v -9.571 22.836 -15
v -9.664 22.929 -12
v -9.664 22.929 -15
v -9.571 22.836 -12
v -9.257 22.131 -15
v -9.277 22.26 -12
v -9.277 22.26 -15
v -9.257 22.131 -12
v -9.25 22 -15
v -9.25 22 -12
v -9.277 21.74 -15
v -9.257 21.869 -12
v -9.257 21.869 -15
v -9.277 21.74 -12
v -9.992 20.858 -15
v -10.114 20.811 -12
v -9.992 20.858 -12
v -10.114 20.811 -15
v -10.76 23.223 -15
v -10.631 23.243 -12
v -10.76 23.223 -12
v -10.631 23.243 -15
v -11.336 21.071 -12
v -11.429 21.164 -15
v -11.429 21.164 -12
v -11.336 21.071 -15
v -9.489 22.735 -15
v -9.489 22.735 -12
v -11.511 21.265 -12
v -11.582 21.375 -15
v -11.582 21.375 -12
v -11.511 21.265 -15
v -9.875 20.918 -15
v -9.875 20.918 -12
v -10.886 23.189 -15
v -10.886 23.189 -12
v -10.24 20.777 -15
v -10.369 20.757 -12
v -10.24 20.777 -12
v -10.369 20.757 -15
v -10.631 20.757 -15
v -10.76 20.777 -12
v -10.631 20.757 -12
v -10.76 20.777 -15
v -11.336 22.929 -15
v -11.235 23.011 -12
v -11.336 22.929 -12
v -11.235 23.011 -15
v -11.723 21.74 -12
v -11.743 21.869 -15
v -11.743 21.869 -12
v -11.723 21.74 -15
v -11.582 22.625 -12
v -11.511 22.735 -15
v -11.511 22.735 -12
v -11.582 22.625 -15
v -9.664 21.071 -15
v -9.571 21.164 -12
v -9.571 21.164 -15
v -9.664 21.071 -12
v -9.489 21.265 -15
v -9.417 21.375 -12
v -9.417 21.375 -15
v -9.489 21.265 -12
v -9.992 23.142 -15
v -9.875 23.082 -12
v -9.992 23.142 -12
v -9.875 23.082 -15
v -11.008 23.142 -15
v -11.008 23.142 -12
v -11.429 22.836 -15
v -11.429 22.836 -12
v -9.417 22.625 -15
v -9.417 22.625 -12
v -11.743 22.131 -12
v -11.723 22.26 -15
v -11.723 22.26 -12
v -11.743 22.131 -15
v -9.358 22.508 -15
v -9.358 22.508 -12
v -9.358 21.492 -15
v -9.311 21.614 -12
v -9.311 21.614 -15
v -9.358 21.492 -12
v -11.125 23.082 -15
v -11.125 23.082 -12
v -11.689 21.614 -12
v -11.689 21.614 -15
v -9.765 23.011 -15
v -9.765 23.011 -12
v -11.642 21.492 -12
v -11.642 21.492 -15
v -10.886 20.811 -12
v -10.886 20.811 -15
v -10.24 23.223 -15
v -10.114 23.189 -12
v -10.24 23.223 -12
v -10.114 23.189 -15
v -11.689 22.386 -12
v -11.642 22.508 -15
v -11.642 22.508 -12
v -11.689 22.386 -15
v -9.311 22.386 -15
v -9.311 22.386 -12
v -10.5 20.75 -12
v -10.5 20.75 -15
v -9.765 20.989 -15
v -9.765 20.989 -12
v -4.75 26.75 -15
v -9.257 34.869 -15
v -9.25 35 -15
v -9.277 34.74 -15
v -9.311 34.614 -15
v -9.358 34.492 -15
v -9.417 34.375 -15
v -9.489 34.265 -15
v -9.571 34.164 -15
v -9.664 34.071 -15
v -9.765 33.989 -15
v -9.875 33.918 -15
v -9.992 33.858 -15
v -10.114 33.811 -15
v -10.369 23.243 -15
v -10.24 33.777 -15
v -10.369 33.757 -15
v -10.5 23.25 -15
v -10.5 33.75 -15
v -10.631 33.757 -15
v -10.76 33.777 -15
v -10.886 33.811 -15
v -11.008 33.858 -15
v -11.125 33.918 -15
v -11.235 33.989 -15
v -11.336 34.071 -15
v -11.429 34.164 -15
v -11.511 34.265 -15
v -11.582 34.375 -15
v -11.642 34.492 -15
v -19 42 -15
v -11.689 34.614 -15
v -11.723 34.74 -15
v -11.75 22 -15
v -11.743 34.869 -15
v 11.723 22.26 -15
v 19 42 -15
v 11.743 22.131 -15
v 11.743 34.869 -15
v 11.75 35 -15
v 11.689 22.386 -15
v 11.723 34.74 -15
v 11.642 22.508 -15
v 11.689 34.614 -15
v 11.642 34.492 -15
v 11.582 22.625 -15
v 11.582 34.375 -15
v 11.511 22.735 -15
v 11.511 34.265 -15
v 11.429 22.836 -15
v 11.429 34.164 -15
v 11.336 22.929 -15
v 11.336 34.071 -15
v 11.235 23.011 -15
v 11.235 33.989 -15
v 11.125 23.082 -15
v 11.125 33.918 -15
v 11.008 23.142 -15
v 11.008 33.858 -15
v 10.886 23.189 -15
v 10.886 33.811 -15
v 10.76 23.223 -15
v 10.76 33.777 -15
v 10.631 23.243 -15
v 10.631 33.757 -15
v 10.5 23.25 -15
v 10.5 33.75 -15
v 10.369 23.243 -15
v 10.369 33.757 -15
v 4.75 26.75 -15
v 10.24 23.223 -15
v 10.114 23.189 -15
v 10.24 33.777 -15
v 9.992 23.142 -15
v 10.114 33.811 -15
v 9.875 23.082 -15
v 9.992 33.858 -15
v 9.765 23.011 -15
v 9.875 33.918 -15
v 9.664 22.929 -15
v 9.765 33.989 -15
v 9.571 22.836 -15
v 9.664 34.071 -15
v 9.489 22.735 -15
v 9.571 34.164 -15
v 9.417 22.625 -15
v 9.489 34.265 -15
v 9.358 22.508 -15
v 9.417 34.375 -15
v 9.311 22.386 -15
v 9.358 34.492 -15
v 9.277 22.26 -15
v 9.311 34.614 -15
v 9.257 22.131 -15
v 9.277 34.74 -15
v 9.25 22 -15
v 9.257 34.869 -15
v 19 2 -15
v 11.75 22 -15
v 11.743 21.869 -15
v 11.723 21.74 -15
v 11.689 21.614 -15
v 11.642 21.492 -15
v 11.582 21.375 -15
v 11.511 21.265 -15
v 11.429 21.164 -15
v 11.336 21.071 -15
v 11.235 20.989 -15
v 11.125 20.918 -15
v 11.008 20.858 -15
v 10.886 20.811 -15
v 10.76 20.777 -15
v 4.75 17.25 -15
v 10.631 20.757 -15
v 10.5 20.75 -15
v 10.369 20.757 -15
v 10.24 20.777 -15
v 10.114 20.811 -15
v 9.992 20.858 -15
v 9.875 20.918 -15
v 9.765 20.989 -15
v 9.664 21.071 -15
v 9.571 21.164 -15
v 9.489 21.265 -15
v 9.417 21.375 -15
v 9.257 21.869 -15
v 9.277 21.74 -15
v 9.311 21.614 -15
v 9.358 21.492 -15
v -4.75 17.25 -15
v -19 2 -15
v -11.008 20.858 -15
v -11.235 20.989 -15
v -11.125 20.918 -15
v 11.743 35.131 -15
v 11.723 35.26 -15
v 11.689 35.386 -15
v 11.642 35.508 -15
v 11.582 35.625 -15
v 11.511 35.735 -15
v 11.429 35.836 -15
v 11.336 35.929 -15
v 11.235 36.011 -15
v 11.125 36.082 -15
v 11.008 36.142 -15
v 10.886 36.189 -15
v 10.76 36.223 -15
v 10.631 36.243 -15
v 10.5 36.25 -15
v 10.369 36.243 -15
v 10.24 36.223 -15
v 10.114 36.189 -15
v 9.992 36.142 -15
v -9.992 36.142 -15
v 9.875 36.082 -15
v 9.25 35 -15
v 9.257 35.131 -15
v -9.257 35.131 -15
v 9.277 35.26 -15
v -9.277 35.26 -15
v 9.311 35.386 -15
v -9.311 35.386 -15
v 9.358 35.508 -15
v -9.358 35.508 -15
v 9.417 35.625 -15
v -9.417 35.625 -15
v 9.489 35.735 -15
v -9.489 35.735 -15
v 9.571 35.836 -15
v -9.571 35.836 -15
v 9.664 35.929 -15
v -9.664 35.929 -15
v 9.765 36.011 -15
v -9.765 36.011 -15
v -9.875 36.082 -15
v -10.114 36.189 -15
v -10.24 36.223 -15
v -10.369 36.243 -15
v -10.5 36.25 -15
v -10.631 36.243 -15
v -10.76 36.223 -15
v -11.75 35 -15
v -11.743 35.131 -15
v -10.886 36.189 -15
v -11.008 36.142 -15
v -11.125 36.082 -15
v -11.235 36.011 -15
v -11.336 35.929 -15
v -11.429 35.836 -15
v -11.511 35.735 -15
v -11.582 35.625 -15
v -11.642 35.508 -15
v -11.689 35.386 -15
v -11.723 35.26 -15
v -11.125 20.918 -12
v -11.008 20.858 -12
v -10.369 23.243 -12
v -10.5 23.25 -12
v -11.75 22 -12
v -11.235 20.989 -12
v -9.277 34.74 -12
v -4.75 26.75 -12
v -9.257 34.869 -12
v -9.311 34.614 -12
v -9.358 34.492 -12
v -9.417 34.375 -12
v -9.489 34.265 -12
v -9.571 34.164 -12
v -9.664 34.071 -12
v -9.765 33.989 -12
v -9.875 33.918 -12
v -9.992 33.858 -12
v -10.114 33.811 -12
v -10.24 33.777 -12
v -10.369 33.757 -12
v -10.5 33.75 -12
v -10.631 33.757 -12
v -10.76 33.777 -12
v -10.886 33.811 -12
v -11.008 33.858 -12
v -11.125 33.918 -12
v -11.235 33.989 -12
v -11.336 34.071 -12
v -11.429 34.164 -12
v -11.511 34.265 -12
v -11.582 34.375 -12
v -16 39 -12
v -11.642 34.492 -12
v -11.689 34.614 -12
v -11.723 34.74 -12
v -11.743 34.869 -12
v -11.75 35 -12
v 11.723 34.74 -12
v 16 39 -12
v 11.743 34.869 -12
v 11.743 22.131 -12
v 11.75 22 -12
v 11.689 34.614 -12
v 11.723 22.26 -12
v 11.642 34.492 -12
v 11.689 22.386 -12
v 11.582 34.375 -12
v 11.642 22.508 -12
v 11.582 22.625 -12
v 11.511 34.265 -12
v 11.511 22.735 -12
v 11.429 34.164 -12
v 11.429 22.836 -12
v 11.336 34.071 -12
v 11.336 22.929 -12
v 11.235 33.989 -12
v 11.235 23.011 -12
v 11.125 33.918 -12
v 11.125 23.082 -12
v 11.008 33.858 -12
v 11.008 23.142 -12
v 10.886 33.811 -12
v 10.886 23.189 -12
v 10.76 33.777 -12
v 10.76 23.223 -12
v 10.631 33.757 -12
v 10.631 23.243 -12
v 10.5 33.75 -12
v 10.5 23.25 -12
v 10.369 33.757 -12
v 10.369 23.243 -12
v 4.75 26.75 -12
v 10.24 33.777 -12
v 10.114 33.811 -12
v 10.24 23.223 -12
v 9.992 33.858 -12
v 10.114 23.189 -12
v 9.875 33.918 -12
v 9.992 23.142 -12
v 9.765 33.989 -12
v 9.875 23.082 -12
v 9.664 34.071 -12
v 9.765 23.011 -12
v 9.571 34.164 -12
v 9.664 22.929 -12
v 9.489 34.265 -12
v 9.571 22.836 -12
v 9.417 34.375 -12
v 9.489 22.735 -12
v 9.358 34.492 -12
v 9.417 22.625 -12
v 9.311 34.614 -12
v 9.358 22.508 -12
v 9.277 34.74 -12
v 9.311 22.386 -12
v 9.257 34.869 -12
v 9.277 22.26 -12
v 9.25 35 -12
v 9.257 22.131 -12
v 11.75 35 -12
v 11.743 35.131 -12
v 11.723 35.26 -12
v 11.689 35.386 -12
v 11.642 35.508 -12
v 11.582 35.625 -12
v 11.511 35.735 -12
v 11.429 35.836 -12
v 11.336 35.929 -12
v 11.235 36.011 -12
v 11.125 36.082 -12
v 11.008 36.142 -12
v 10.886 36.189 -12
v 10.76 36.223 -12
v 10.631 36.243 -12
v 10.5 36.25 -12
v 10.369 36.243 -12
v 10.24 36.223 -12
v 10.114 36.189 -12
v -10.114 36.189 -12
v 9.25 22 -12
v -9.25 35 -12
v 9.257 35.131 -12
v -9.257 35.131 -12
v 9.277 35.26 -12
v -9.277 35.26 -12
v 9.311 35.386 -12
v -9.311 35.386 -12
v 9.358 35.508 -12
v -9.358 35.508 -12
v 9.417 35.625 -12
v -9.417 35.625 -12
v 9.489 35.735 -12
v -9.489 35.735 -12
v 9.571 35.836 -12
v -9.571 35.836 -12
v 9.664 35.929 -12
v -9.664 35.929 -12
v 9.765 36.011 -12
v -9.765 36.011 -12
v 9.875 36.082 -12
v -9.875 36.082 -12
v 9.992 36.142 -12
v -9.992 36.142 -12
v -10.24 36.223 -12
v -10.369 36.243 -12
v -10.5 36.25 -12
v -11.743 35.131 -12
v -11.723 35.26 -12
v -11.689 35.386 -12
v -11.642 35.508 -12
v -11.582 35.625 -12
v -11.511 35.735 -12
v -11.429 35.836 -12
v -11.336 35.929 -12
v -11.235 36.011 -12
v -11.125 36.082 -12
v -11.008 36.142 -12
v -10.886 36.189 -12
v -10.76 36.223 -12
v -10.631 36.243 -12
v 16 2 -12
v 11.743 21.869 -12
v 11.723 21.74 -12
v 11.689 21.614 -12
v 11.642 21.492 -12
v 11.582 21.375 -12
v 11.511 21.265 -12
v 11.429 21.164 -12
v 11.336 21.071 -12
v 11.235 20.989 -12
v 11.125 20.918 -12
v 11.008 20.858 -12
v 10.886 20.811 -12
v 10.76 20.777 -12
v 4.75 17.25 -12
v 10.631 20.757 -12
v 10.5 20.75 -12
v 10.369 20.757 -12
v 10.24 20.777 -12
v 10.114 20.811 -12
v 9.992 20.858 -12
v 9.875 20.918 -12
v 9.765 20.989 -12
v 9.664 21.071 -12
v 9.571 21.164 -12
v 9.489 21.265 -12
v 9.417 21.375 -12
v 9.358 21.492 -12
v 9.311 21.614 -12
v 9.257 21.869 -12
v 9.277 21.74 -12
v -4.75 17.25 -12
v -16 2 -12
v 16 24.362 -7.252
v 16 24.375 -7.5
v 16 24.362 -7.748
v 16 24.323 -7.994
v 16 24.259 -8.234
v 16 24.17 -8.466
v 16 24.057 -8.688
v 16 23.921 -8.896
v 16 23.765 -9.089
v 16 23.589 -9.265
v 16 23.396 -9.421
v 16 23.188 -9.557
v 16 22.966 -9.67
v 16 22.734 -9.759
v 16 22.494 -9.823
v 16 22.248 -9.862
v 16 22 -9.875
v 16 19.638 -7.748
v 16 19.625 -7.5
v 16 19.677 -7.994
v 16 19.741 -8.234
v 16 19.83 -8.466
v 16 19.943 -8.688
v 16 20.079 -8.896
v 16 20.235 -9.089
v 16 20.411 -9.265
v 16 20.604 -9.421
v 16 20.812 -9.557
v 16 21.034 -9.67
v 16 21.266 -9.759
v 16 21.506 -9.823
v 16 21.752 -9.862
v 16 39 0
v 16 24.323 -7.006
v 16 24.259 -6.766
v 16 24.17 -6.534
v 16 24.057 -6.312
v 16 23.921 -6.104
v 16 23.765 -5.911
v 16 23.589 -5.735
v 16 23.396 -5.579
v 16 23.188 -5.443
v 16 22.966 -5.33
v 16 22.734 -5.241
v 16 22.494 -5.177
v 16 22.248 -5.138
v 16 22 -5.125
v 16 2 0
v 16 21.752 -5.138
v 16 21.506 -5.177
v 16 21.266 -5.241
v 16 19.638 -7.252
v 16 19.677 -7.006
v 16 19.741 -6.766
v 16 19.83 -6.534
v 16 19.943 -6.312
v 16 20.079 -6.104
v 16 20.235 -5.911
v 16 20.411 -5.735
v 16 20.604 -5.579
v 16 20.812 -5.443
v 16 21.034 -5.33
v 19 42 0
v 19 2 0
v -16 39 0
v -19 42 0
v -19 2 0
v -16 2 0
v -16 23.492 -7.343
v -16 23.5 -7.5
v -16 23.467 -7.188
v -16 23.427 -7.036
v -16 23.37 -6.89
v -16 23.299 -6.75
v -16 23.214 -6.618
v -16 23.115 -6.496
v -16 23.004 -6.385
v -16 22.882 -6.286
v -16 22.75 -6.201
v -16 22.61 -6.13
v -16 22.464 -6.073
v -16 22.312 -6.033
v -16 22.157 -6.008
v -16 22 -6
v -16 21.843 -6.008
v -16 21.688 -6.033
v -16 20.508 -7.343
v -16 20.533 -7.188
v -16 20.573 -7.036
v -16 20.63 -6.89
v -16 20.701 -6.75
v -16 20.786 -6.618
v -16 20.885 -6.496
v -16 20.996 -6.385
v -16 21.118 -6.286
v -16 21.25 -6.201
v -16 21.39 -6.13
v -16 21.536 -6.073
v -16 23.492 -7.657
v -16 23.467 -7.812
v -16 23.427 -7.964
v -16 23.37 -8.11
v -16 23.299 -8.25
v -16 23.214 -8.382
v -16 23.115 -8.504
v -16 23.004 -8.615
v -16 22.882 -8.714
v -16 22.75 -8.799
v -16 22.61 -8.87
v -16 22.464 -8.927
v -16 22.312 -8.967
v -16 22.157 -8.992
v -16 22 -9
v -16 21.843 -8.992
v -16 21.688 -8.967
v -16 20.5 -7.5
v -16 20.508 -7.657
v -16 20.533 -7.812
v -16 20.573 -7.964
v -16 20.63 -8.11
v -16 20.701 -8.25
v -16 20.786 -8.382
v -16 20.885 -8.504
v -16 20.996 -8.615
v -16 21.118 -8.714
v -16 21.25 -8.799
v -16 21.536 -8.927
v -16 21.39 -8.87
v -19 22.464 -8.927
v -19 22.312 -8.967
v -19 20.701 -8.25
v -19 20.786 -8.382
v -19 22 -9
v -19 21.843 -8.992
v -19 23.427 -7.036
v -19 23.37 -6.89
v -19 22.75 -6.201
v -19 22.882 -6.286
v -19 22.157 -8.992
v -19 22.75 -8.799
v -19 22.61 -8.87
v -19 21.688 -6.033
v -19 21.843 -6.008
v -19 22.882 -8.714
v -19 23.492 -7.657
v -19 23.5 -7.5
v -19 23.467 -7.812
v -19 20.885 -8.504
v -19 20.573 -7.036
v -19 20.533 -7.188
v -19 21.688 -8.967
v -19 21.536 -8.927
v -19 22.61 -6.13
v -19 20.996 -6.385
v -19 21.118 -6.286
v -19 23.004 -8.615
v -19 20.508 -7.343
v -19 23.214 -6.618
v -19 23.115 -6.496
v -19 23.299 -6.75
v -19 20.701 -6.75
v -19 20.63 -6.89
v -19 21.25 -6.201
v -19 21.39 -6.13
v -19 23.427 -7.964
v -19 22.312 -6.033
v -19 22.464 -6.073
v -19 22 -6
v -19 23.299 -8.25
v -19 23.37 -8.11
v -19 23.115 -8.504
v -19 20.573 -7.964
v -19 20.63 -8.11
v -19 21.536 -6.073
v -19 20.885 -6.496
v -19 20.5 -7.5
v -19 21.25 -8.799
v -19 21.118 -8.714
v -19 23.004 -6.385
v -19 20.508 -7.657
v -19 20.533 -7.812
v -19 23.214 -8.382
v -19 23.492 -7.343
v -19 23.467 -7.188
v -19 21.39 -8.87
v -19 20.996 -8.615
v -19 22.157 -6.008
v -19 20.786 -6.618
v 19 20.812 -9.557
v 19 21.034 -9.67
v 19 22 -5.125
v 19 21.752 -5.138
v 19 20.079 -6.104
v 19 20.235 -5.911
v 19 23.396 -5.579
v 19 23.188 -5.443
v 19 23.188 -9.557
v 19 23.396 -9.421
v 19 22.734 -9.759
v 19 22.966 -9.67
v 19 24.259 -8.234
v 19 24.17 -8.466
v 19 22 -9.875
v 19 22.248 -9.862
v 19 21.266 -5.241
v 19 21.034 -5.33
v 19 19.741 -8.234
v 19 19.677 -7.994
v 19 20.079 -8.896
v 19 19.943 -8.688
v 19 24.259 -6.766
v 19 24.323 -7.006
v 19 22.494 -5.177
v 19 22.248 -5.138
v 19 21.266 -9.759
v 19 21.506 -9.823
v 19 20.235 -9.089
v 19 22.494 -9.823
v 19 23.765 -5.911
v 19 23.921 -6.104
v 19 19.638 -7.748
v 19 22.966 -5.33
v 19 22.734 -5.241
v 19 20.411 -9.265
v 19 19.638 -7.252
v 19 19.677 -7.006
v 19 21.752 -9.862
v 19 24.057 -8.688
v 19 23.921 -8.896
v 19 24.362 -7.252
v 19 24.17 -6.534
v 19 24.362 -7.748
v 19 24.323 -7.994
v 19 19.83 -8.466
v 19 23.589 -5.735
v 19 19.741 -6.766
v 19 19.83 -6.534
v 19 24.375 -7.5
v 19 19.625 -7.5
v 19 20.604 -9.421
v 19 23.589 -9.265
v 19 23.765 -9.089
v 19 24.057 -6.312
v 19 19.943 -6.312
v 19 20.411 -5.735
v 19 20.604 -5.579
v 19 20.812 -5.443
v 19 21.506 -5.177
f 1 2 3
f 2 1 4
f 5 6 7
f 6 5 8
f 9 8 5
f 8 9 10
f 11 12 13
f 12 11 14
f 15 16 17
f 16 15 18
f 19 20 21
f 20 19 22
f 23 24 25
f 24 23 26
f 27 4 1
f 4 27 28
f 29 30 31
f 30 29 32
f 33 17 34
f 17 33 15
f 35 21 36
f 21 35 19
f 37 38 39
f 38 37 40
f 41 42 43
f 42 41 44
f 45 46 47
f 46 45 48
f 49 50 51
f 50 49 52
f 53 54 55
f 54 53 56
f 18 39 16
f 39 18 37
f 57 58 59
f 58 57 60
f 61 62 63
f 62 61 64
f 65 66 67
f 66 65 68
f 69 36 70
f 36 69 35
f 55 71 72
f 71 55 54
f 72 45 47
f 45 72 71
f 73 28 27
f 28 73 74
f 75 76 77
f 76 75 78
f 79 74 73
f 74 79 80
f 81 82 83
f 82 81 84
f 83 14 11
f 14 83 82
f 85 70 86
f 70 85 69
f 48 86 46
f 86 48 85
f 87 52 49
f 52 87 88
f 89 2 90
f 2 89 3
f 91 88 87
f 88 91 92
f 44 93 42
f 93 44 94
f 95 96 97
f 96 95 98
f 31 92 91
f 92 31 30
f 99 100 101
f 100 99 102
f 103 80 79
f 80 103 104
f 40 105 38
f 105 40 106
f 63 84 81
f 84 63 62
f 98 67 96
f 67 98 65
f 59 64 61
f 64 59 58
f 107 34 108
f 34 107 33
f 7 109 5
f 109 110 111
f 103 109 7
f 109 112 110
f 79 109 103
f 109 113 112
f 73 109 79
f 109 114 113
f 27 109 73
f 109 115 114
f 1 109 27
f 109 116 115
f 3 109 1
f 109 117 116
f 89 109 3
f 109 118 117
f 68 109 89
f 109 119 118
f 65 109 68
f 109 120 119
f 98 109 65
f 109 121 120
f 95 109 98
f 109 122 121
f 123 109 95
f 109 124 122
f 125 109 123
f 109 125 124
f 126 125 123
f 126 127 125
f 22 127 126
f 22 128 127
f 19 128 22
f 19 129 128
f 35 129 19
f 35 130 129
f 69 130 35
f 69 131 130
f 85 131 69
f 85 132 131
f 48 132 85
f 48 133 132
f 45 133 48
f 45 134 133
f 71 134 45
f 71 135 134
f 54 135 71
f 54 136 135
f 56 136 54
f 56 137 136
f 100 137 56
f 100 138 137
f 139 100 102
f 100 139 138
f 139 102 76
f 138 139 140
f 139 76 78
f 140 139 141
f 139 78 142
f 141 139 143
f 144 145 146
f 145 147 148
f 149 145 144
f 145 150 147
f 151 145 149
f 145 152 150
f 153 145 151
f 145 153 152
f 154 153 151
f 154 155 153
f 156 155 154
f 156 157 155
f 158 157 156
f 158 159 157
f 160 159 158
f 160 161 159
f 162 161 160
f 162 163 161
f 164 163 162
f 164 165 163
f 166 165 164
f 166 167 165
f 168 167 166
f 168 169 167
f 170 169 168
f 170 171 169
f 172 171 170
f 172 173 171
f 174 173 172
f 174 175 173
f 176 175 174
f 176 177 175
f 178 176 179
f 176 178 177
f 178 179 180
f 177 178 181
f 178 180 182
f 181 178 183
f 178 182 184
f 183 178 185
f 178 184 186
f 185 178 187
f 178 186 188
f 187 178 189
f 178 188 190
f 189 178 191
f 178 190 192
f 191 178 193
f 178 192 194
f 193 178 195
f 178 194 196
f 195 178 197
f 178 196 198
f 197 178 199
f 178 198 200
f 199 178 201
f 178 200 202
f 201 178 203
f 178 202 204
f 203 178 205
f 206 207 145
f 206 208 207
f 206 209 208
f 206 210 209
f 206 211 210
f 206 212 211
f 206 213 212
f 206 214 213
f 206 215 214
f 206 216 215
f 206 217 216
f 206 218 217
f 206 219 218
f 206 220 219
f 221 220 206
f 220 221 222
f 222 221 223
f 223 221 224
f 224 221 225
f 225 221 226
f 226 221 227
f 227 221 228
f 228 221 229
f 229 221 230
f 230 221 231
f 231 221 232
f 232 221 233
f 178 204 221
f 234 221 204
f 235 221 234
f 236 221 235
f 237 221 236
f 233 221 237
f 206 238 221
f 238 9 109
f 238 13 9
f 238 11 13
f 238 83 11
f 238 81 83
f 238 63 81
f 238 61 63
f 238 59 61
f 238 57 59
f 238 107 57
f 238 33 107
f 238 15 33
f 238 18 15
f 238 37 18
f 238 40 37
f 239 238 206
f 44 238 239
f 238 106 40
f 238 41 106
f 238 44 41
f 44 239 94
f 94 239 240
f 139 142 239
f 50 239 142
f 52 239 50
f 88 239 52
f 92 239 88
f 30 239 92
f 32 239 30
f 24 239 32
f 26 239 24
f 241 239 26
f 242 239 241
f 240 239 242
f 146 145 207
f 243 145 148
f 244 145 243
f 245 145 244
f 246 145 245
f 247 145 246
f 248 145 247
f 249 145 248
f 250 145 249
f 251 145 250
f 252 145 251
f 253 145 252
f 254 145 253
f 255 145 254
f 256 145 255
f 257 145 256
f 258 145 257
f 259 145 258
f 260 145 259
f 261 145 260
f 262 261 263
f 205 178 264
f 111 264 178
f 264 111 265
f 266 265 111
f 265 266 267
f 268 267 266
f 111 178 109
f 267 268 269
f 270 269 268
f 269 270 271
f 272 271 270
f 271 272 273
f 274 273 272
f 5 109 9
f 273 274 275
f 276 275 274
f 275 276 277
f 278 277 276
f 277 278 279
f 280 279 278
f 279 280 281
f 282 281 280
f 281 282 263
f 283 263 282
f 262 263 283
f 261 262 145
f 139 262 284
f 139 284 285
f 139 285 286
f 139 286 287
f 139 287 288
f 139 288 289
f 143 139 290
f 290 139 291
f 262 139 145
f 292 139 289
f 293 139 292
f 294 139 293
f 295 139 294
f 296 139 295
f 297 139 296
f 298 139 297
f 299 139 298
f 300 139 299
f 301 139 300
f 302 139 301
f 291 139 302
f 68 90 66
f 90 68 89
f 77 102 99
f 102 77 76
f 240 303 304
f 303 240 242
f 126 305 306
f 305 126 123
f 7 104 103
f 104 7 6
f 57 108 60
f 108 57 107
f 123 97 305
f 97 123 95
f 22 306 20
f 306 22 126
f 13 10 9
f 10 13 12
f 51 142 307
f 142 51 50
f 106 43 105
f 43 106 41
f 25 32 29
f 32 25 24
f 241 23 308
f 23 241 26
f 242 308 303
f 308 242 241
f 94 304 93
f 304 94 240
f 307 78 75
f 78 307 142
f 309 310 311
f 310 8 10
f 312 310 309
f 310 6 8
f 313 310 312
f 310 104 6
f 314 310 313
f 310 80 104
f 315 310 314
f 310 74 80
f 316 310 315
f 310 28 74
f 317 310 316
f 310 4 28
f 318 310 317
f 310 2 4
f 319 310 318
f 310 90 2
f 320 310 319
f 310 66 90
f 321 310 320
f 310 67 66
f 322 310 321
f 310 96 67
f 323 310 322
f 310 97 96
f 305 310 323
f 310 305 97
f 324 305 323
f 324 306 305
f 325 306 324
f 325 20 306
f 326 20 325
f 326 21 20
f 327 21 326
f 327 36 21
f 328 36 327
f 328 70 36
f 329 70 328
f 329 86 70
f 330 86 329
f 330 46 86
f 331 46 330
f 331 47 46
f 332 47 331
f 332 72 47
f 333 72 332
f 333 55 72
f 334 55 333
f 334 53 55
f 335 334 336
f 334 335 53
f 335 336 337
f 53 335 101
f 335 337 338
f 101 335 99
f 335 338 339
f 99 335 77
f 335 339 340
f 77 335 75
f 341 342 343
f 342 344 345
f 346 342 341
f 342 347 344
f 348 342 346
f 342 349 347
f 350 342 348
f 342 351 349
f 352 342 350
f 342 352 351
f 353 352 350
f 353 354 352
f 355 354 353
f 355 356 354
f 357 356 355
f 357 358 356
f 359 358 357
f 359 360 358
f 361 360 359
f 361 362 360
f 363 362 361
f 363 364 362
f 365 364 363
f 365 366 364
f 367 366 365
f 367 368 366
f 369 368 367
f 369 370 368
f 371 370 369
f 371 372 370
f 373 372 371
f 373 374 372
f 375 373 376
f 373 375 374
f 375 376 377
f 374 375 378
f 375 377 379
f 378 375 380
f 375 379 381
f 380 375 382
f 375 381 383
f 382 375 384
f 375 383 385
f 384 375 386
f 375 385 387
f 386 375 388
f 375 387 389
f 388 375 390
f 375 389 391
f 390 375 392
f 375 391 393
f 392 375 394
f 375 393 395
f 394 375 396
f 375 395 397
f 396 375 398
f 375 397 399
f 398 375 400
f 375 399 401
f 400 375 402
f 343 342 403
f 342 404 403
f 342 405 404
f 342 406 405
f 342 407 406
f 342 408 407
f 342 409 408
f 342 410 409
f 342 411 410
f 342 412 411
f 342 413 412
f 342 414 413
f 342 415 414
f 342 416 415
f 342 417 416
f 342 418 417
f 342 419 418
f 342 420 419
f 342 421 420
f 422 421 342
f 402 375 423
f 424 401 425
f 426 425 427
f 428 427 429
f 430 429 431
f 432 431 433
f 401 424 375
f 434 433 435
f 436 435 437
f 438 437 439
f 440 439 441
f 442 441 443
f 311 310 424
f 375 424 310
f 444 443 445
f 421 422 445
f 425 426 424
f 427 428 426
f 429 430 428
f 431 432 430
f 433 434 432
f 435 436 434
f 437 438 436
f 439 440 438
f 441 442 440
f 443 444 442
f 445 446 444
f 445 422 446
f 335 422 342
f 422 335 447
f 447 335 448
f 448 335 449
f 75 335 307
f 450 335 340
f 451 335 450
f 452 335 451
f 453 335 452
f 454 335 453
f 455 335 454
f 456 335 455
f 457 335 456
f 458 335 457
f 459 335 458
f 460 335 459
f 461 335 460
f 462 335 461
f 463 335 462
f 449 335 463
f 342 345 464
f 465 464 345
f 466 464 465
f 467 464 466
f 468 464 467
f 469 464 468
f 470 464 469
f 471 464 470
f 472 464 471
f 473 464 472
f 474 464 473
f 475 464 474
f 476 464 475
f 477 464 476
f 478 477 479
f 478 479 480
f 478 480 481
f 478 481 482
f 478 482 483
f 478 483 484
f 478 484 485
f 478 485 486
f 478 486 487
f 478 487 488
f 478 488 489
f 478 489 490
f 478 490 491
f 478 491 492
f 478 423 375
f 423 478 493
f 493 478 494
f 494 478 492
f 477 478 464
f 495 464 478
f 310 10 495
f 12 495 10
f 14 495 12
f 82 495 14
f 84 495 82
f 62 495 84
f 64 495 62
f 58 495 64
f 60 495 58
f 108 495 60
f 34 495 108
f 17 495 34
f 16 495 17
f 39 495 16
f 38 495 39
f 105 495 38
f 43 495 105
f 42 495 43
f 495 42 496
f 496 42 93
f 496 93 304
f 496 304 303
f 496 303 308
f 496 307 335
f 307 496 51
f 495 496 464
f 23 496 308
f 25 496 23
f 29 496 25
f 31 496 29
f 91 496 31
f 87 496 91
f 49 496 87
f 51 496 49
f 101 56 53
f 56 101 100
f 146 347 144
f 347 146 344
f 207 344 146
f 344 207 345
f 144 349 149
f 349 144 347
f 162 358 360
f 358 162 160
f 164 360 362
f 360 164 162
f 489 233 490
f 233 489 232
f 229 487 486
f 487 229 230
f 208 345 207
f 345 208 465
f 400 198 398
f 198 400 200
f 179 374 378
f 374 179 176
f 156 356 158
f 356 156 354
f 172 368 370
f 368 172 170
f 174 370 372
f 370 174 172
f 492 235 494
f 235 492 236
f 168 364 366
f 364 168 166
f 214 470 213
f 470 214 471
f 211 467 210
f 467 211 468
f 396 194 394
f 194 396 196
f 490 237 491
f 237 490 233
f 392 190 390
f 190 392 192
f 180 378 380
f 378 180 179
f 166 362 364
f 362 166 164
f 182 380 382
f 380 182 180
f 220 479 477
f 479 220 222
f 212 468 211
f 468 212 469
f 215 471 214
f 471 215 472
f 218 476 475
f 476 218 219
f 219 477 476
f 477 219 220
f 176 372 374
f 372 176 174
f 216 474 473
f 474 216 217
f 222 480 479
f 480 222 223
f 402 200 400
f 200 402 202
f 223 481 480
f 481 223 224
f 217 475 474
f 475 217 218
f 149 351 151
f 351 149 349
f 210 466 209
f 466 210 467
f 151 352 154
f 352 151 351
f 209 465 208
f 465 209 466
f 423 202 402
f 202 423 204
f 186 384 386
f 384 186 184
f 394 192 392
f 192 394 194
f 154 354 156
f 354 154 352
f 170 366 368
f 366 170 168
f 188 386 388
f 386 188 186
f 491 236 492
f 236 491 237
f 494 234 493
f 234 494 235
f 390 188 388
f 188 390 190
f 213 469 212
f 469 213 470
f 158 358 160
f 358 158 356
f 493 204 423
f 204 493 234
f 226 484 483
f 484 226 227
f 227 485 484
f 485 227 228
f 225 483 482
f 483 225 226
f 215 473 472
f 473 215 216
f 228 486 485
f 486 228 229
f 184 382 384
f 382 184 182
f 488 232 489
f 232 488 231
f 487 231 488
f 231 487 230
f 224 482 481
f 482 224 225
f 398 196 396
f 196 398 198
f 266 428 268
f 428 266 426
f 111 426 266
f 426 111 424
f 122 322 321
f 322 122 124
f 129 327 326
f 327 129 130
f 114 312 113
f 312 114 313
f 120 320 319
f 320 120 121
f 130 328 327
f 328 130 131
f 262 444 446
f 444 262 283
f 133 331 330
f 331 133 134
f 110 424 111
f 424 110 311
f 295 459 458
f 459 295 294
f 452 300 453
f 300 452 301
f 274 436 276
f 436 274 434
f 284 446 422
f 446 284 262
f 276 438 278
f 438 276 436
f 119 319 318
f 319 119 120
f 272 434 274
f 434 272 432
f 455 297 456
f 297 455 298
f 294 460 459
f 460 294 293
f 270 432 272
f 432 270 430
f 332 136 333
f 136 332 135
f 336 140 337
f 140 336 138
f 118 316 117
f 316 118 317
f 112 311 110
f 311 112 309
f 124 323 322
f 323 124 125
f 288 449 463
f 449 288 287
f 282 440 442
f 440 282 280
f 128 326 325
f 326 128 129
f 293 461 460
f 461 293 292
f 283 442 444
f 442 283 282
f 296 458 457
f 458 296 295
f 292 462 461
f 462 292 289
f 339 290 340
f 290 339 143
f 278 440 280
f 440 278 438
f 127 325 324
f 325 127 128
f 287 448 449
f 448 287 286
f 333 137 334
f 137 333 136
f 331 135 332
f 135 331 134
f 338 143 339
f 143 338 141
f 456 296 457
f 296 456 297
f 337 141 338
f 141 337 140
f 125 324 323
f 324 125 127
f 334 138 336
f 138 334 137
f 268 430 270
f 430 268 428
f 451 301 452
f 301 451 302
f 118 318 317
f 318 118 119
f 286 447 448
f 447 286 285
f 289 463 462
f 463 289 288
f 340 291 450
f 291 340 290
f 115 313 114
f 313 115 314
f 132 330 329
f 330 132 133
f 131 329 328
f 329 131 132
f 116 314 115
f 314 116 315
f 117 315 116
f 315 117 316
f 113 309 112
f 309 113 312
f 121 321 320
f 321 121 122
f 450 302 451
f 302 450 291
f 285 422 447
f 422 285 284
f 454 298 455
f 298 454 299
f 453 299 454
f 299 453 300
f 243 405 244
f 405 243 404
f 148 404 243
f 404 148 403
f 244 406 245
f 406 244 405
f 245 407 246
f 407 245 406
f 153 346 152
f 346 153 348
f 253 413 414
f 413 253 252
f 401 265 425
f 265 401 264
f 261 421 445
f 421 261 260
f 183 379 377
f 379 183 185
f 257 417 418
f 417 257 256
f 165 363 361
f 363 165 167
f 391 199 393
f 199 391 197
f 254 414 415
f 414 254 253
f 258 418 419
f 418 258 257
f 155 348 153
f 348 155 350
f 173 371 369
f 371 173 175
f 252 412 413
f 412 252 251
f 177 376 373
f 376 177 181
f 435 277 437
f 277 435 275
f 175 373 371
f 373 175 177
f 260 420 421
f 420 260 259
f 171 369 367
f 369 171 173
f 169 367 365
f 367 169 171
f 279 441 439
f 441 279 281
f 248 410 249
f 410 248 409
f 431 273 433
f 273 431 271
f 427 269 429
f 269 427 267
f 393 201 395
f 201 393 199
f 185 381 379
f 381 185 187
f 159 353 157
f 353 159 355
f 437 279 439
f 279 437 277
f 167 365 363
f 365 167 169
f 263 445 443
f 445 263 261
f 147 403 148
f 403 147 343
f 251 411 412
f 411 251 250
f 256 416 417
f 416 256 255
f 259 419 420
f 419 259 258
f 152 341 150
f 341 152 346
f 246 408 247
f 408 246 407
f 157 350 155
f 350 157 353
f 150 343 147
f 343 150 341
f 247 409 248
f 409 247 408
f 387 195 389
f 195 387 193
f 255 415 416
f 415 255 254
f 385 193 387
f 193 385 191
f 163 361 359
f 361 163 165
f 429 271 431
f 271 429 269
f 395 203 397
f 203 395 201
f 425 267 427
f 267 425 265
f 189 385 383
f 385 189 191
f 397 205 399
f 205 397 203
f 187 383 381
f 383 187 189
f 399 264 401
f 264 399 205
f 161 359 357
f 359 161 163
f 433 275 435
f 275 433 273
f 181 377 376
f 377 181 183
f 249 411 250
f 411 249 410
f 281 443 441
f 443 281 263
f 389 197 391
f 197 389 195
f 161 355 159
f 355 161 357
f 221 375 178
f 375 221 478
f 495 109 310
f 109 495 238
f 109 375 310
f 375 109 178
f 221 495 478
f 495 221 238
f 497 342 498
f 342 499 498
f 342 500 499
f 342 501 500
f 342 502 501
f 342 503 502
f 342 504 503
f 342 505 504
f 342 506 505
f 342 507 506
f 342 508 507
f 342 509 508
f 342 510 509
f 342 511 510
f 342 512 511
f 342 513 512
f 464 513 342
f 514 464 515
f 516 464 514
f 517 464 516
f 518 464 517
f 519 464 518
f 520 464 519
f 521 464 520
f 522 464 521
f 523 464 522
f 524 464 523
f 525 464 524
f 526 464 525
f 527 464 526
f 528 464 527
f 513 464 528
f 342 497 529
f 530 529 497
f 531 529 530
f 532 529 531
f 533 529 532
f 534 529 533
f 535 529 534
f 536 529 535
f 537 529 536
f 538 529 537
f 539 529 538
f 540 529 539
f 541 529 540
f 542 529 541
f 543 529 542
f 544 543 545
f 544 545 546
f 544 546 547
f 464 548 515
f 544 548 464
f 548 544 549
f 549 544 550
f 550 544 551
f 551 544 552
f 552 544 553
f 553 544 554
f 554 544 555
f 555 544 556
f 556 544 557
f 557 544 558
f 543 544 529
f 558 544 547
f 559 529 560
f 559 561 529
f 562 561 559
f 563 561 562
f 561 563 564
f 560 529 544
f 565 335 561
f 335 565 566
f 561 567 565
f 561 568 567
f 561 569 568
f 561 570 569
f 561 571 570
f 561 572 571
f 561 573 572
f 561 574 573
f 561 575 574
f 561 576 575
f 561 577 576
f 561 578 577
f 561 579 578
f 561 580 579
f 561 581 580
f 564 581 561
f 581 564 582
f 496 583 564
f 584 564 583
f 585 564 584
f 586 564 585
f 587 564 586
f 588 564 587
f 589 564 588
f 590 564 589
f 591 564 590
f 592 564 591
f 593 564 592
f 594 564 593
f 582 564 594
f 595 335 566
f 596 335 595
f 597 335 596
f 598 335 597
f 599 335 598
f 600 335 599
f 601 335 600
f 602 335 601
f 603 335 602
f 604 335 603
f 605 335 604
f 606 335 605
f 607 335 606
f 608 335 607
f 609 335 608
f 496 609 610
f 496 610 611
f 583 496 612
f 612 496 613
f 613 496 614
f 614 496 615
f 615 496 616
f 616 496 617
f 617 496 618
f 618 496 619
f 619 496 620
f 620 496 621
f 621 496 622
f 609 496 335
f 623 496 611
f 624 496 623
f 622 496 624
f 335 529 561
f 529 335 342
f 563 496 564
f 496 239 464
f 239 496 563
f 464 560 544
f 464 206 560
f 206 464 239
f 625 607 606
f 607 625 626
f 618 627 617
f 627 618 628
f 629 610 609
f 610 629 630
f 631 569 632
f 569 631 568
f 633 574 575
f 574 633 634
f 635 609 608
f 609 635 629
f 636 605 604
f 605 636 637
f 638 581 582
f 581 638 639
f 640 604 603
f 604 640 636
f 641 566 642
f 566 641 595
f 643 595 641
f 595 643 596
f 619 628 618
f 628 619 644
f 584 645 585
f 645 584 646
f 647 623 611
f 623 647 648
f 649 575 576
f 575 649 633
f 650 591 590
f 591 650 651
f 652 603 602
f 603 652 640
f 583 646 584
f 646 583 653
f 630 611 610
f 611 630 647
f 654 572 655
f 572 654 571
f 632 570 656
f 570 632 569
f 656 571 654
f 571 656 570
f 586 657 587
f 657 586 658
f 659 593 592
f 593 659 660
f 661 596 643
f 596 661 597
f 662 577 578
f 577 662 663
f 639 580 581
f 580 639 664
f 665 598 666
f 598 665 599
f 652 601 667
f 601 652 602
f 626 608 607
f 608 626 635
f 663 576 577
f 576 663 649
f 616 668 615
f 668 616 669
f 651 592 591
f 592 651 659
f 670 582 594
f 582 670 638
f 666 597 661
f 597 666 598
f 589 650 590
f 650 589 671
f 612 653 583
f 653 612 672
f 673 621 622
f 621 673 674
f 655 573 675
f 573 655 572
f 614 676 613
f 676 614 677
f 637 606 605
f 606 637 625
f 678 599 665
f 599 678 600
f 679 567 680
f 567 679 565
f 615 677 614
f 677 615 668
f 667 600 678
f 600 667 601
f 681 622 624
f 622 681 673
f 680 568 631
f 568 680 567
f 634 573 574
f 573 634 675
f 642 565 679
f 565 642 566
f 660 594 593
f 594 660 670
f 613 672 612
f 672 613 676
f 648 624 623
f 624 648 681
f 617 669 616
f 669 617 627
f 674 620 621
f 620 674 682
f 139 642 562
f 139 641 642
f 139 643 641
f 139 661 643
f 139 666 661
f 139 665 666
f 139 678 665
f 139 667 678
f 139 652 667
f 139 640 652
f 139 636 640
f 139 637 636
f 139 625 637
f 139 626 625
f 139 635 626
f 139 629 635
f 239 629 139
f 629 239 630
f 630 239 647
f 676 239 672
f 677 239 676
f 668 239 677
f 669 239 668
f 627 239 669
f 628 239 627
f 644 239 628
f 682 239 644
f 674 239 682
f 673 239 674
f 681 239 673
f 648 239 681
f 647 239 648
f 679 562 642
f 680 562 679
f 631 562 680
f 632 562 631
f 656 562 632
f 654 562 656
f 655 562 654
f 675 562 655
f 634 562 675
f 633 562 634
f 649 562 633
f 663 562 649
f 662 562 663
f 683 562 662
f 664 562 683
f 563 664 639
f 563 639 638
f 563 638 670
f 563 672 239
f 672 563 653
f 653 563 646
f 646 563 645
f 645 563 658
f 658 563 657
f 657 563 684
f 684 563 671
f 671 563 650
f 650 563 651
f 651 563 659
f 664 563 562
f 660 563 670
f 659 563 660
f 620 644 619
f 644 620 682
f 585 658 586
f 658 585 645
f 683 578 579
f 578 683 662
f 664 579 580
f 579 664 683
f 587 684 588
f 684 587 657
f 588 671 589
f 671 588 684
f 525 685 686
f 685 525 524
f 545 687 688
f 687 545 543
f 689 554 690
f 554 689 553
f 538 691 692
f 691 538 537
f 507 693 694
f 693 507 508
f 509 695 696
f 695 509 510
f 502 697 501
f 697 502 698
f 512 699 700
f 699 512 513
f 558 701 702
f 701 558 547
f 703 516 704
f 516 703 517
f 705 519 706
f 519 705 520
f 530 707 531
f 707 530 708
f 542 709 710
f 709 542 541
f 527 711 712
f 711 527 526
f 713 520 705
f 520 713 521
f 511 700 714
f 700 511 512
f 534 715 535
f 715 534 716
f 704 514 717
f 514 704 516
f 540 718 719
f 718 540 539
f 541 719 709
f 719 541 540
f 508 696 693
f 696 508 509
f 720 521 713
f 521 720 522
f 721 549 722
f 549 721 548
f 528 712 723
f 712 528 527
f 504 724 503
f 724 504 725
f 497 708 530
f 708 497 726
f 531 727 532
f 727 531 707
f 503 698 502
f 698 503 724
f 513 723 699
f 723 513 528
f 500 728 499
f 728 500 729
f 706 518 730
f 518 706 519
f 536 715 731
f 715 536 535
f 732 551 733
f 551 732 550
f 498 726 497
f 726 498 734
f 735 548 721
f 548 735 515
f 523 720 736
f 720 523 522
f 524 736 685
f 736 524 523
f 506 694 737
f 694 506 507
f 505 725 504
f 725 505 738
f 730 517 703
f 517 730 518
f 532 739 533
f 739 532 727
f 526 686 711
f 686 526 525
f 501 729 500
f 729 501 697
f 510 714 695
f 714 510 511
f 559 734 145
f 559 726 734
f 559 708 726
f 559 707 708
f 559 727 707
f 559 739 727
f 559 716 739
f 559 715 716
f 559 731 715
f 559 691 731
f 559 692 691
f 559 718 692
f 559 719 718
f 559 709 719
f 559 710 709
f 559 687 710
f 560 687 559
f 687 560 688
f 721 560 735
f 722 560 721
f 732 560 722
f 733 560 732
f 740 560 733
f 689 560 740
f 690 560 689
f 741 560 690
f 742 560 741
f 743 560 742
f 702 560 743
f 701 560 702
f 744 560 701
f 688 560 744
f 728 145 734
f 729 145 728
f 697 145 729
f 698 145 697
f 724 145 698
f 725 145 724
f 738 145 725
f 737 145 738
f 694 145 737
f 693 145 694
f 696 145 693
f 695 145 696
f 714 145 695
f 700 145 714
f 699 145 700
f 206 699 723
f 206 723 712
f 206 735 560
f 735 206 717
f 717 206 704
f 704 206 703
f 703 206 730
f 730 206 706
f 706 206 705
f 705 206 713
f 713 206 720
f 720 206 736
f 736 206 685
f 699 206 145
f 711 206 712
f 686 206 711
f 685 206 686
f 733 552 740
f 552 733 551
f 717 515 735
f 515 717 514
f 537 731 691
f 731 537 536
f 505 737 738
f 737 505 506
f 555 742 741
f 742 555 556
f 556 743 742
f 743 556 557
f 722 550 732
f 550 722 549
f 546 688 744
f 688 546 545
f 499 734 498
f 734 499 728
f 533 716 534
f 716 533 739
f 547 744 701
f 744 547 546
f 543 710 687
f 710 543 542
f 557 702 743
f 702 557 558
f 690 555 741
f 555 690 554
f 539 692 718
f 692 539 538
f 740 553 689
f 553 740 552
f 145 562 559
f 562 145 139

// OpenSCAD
// file: ../lib/micro_servo.scad
$fn = 60;



module micro_servo()
{
    servo_mount_width = 8.5;
    servo_body_length = 22.5;
    servo_body_width = 12; // square body
    servo_body_height = 22.5;
    servo_axis_length = 15.5;

    mounting_arm_thickness = 2.5;
    mounting_arm_length = 5;
    mounting_arm_height = 15;

    gearbox_cylinder_height = 4;
    major_gearbox_offset = 0.5; // distance from edge
    major_gearbox_cylinder_diameter = 11.5;
    minor_gearbox_offset = 5.5; // distance from major gearbox center
    //minor_gearbox_cylinder_diameter = 5.5;
    minor_gearbox_cylinder_diameter = 6.5; // for simplicity

    control_head_diameter = 5;
    control_head_height = 3;
    
    translate([-servo_body_width / 2, 0, 0])
    translate([0, -servo_body_length + major_gearbox_offset + (major_gearbox_cylinder_diameter / 2), 0])
    translate([0, 0, -(servo_body_height + gearbox_cylinder_height)])
    union()
    {
        cube([servo_body_width, servo_body_length, servo_body_height]);
        
        // forward mounting arm
        translate([0, servo_body_length, mounting_arm_height])
        cube([servo_body_width, mounting_arm_length, mounting_arm_thickness]);
        
        // rear mounting arm
        translate([0, -mounting_arm_length, mounting_arm_height])
        cube([servo_body_width, mounting_arm_length, mounting_arm_thickness]);
        
        // major gearbox cylinder
        translate([major_gearbox_offset/2, servo_body_length - major_gearbox_offset, servo_body_height])
        translate([major_gearbox_cylinder_diameter / 2, -major_gearbox_cylinder_diameter / 2, 0])
        cylinder(d=major_gearbox_cylinder_diameter, h=gearbox_cylinder_height);
        
        // minor gearbox cylinder
        translate([major_gearbox_offset/2, servo_body_length - major_gearbox_offset, servo_body_height])
        translate([major_gearbox_cylinder_diameter / 2, -major_gearbox_cylinder_diameter / 2, 0])
        translate([0, -minor_gearbox_offset, 0])
        cylinder(d=minor_gearbox_cylinder_diameter, h=gearbox_cylinder_height);
        
        // control head
        translate([0, servo_body_length - major_gearbox_offset, servo_body_height])
        translate([major_gearbox_cylinder_diameter / 2, -major_gearbox_cylinder_diameter / 2, gearbox_cylinder_height])
        cylinder(d=control_head_diameter, h=control_head_height);
    }
}

module micro_servo_void()
{
    servo_mount_width = 9.5;
    servo_body_length = 23.5;
    servo_body_width = 13; // square body
    servo_body_height = 23.5;
    servo_axis_length = 15.5;

    mounting_arm_thickness = 3.5;
    mounting_arm_length = 6;
    mounting_arm_height = 15;

    gearbox_cylinder_height = 4.5;
    major_gearbox_offset = 0.5; // distance from edge
    major_gearbox_cylinder_diameter = 12.5;
    minor_gearbox_offset = 5.5; // distance from major gearbox center
    //minor_gearbox_cylinder_diameter = 5.5;
    minor_gearbox_cylinder_diameter = 6.5; // for simplicity

    control_head_diameter = 5;
    control_head_height = 3;
    
    translate([-servo_body_width / 2, 0, 0])
    translate([0, -servo_body_length + major_gearbox_offset + (major_gearbox_cylinder_diameter / 2), 0])
    translate([0, 0, -(servo_body_height + gearbox_cylinder_height)])
    union()
    {
        cube([servo_body_width, servo_body_length, servo_body_height]);
        
        // forward mounting arm
        translate([0, servo_body_length, 0])
        cube([servo_body_width, mounting_arm_length, mounting_arm_thickness + mounting_arm_height]);
        
        // rear mounting arm
        translate([0, -mounting_arm_length, 0])
        cube([servo_body_width, mounting_arm_length, mounting_arm_thickness + mounting_arm_height]);
        
        // major gearbox cylinder
        translate([major_gearbox_offset/2, servo_body_length - major_gearbox_offset, servo_body_height])
        translate([major_gearbox_cylinder_diameter / 2, -major_gearbox_cylinder_diameter / 2, 0])
        cylinder(d=major_gearbox_cylinder_diameter, h=gearbox_cylinder_height);
        
        // minor gearbox cylinder
        translate([major_gearbox_offset/2, servo_body_length - major_gearbox_offset, servo_body_height])
        translate([major_gearbox_cylinder_diameter / 2, -major_gearbox_cylinder_diameter / 2, 0])
        translate([0, -minor_gearbox_offset, 0])
        cylinder(d=minor_gearbox_cylinder_diameter, h=gearbox_cylinder_height);
        
        // control head
        translate([0, servo_body_length - major_gearbox_offset, servo_body_height])
        translate([major_gearbox_cylinder_diameter / 2, -major_gearbox_cylinder_diameter / 2, gearbox_cylinder_height])
        cylinder(d=control_head_diameter, h=control_head_height);
    }
}

//micro_servo_void();
// file: ../lib/rpi.scad
module base_plate_screw_head_cone(screw_head_radius = 6, screw_head_depth = 2)
{

    rotate_extrude()
    {
        translate([0, 0, 0]) polygon(points=[[0,0],[screw_head_radius, 0],[0,screw_head_depth]], paths=[[0,1,2]]);
    }
}


module raspberry_pi_holes(thickness = 3, screw_hole_diameter = 3)
{
//    z_offset = -thickness / 2.0;
    z_offset = -thickness;
    for ( x_offset = [3.5, 61.5] )
    {
        for ( y_offset = [3.5, 52.5] )
        {
            union()
            {
                translate([x_offset, y_offset, z_offset]) cylinder(d=screw_hole_diameter, h=thickness);
                translate([x_offset, y_offset, z_offset]) base_plate_screw_head_cone();
            }
        }
    }
}


// camera hole is centered at (0, 0, 0)
//camera_hole_center_x = 0;
//camera_hole_center_y = 6.7;
//module rpi_camera_holes(thickness = 2)
//{
//    wall_thickness = thickness;
//    
//    screw_head_depth = 2;
//    screw_head_radius = 4;
//    
//    translate([0, 0, -wall_thickness + 1])
//    union()
//    {
//        for ( y_offset = [-6.75, 6.25] )
//        {
//            for ( x_offset = [-10.5, 10.5] )
//            {
//                // screw hole
//                translate([camera_hole_center_x + x_offset, camera_hole_center_y+ y_offset, -10])
//                cylinder(h=20, r=1.25);
//                
//                // screw head cone
//                translate([camera_hole_center_x + x_offset, camera_hole_center_y+ y_offset, 0])
//                rotate([0, 0, 0])
//                rotate_extrude()
//                {
//                    translate([0, 0, 0]) polygon(points=[[0,0],[screw_head_radius, 0],[0,screw_head_depth]], paths=[[0,1,2]]);
//                }
//            }
//        }
//    }
//    
//    translate([camera_hole_center_x, camera_hole_center_y - 6.75, -wall_thickness])cube(size = [9.5, 9.5, 9.5], center = true);
//}

// lens center is at (0, 0, 0)
module rpi_camera_holes(thickness = 2, screw_hole_diameter = 2.5)
{
    lens_side_length = 9.5;
    
    union()
    {
        for ( y_offset = [0, 13] )
        {
            for ( x_offset = [-10.5, 10.5] )
            {
                translate([x_offset, y_offset, 0])
                cylinder(d=screw_hole_diameter, h=thickness);
            }
        }
        
        translate([-lens_side_length / 2, -lens_side_length / 2, 0])
        cube([9.5, 9.5, thickness]);
    }
}
// file: ../lib/rpi_tilt_gimbal_lib.scad
include <rpi.scad>
include <micro_servo.scad>

// for connecting to the drone
y_offset = -3;

$fn = 60;

width = 38;
length = 40;
thickness = 15;

support_length = 5;
left_arm_width = 8;
right_arm_width = 15;
spacing = 0.5;
rear_spacing = 2;

base_translation_width = (width / 2) + left_arm_width + spacing;
base_tilt_axis_y_offset = support_length + rear_spacing + (length / 2);
mount_tilt_axis_y_offset = length / 2;
right_arm_x_offset = (width / 2) + spacing;

camera_mount_brim = 3; //mm
camera_mount_thickness = 3;

module tilt_gimbal_base()
{
    translate([0, -support_length, -thickness])
    union()
    {
        // base support
        translate([-base_translation_width, 0, 0])
        cube([width + left_arm_width + right_arm_width + (2 * spacing), support_length, thickness]);
        
        // left arm
        difference()
        {
            translate([-base_translation_width, support_length, 0])
            cube([left_arm_width, length + rear_spacing, thickness]);
            
            translate([-base_translation_width, base_tilt_axis_y_offset, thickness / 2])
            rotate([0, 90, 0])
            cylinder(d = 3, h = left_arm_width);
        }
        
        // right arm with servo mount
        difference()
        {
            union()
            {
                translate([right_arm_x_offset, support_length, 0])
                cube([right_arm_width, length + rear_spacing, thickness]);
            }
            union()
            {
                // axis non-contact hole
                translate([right_arm_x_offset, base_tilt_axis_y_offset, thickness / 2])
                rotate([0, 90, 0])
                cylinder(d = 5.5, h = right_arm_width);
                
                // servo void
                translate([right_arm_x_offset - 1, base_tilt_axis_y_offset, thickness/2])
                rotate([0, -90, 0])
                micro_servo_void();
            }
        }
        

    }
}

module tilt_gimbal_camera_mount()
{
    translate([-width/2, rear_spacing, -thickness])
    difference()
    {
        union()
        {
            translate([0, 0, 0])
            cube([width, length, thickness]);
            

        }
        union()
        {
            // indentation
            translate([camera_mount_brim, 0, camera_mount_thickness])
            cube([width - (2 * camera_mount_brim), length - camera_mount_brim, thickness - camera_mount_thickness]);
            
            // camera mounting holes
            translate([width / 2, mount_tilt_axis_y_offset, 0])
            rpi_camera_holes(thickness = camera_mount_thickness);
            
            // left axis hole
            translate([0, mount_tilt_axis_y_offset, thickness / 2])
            rotate([0, 90, 0])
            cylinder(d=3, h=camera_mount_brim);
            
            // right axis hole with servo contact
            translate([width - camera_mount_brim, mount_tilt_axis_y_offset, thickness / 2])
            rotate([0, 90, 0])
            cylinder(d=4.75, h=camera_mount_brim);
        }
    }
}

//tilt_gimbal_base();
//tilt_gimbal_camera_mount();
// main file
include <../lib/rpi_tilt_gimbal_lib.scad>

tilt_gimbal_camera_mount();
